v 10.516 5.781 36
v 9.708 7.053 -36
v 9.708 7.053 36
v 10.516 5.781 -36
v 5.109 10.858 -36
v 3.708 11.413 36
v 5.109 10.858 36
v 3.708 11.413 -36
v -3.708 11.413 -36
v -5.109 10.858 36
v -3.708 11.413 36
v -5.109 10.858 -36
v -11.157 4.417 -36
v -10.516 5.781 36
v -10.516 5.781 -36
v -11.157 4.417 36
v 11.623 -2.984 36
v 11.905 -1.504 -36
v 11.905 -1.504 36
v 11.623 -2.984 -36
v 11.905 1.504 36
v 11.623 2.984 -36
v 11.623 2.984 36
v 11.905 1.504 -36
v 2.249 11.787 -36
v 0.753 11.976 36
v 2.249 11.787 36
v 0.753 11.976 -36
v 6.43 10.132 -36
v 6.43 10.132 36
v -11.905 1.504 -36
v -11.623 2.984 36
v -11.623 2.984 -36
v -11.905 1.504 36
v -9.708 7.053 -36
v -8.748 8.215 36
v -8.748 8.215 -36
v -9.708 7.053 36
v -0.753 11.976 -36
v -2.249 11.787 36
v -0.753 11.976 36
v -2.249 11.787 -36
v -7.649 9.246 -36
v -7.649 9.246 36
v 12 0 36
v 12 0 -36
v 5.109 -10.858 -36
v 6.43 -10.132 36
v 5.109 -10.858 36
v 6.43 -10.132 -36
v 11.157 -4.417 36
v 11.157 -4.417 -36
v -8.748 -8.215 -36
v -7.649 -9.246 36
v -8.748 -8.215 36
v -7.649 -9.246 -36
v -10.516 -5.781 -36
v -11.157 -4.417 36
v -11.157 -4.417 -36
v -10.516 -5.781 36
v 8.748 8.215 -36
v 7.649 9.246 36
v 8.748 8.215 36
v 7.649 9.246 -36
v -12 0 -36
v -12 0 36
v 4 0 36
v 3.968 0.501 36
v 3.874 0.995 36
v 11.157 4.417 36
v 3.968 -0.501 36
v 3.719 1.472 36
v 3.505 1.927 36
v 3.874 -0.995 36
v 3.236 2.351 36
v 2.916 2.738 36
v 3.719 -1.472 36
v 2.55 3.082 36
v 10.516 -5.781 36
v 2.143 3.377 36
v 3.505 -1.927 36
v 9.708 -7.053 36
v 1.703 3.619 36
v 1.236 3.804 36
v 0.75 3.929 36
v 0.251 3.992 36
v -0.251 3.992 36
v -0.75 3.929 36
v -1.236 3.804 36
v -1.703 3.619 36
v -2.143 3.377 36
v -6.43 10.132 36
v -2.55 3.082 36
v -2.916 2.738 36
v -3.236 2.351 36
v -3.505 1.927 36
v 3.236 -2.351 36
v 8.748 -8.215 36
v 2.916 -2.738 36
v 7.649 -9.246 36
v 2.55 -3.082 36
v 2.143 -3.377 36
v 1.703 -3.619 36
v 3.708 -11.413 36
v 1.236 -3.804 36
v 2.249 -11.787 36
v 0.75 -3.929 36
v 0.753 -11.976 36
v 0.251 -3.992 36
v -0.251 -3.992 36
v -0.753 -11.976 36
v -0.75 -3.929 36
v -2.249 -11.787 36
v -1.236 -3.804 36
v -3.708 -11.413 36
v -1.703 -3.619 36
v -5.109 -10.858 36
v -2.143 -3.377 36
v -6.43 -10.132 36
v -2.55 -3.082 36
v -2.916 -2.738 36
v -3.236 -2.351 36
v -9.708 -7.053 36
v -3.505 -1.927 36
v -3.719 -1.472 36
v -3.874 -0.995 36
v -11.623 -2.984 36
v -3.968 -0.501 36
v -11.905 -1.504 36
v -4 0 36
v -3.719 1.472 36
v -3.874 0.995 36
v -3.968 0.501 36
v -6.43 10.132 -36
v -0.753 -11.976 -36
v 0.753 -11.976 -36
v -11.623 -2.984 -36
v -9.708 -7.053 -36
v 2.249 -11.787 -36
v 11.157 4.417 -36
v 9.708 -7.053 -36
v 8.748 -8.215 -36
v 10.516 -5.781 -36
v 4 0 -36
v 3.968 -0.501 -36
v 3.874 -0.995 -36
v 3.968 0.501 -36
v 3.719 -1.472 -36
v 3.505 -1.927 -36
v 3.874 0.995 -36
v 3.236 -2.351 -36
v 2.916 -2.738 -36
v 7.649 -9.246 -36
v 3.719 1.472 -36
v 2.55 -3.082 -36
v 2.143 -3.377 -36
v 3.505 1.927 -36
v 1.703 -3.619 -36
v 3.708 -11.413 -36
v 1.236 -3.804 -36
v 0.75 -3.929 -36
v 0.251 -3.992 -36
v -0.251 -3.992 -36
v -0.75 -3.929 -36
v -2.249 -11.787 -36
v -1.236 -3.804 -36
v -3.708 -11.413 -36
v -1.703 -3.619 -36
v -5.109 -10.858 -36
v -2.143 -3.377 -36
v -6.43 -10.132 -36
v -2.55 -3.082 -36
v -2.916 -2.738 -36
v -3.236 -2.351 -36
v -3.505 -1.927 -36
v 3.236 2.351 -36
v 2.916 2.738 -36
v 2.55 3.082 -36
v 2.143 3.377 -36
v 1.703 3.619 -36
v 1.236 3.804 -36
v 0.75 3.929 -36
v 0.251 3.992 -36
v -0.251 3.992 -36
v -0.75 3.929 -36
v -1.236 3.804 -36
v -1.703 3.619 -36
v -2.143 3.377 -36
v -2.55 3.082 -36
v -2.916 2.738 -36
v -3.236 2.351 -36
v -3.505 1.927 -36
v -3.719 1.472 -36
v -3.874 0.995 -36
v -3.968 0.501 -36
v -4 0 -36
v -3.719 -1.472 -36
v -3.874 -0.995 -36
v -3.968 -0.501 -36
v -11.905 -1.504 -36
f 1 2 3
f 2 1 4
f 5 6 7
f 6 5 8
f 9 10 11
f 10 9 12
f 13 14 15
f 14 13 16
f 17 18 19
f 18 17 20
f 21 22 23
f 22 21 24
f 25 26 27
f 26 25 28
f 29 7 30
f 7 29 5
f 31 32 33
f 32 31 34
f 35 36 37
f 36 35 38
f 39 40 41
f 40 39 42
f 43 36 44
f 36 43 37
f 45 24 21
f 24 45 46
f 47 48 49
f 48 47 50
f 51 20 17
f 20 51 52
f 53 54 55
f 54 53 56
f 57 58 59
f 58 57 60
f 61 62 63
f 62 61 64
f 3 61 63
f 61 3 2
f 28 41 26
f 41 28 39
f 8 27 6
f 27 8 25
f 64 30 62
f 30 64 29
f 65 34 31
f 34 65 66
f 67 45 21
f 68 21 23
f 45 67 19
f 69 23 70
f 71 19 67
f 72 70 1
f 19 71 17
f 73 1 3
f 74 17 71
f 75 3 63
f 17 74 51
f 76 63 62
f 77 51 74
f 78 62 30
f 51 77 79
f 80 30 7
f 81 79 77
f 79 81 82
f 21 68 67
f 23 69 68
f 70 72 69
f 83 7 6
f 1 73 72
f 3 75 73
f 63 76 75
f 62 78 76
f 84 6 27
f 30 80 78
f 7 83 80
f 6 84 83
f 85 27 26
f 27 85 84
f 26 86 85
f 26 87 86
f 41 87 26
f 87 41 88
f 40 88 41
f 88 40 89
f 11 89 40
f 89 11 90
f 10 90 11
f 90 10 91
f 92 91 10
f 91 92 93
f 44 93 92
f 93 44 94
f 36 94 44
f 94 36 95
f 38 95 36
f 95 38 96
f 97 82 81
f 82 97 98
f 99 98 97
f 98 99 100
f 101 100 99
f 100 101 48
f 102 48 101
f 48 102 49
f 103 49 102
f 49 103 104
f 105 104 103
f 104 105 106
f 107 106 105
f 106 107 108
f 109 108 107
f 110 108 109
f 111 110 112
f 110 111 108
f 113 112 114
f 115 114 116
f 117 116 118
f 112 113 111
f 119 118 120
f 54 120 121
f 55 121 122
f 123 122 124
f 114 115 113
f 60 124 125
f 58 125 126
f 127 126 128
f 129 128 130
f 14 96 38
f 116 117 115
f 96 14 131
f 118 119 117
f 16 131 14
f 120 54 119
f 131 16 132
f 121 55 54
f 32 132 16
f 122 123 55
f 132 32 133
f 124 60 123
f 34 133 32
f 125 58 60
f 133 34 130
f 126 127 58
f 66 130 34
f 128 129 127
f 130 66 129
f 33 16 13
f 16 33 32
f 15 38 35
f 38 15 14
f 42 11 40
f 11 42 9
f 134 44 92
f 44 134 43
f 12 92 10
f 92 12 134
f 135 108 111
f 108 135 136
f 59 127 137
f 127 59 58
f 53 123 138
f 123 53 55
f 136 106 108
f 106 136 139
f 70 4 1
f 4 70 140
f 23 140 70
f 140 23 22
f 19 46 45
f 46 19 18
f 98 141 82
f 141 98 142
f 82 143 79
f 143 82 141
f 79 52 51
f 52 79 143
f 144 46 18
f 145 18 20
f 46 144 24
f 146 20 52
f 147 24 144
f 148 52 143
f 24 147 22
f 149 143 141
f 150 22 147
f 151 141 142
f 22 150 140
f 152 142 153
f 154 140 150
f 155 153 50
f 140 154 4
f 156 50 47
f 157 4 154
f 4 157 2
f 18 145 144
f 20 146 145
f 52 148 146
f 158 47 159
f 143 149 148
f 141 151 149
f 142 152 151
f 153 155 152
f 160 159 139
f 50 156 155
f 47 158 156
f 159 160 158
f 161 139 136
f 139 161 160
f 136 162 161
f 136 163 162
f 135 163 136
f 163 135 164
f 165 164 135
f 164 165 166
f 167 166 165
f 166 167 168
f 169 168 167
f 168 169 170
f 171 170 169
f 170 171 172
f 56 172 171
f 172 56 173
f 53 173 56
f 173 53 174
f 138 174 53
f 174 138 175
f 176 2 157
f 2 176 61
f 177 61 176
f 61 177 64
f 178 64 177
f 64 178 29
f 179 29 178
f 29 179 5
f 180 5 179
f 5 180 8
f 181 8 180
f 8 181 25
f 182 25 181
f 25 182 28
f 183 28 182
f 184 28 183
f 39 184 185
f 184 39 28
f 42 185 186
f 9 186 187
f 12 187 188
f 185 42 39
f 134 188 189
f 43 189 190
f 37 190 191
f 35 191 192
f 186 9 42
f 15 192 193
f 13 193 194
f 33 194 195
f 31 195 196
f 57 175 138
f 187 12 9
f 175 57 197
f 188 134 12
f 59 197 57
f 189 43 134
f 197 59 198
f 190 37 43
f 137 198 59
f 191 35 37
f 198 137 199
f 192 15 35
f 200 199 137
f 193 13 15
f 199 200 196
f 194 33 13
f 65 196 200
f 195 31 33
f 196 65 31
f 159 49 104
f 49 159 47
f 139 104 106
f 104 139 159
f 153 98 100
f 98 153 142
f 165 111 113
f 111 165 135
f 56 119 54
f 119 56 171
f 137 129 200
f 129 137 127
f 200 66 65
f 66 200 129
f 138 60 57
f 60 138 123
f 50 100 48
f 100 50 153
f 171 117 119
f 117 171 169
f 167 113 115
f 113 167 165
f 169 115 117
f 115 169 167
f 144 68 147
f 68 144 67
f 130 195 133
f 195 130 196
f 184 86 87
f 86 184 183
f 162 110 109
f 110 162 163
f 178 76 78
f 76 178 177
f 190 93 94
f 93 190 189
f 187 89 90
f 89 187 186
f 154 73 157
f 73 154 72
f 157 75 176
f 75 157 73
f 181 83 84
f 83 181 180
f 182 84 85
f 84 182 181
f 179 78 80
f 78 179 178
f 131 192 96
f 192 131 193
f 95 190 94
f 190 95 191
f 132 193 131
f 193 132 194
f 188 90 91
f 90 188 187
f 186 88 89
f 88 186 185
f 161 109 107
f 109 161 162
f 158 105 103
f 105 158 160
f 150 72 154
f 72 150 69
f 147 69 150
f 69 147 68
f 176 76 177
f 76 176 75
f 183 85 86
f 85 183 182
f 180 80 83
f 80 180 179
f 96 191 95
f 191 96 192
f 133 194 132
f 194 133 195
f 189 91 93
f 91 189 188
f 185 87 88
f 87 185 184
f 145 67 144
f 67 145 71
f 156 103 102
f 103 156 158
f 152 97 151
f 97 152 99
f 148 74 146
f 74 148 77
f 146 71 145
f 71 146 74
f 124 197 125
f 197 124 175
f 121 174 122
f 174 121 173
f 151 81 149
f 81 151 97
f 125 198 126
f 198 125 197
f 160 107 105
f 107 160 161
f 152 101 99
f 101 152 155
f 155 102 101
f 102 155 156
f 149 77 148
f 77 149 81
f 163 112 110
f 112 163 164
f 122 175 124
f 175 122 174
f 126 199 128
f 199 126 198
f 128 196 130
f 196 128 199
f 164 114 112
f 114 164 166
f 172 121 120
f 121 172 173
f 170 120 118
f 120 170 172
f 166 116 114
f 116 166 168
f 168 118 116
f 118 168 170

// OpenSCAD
$fn = 50;


difference() {
	union() {
		translate(v = [0, 0, -36.0000000000]) {
			cylinder(h = 72, r = 12.0000000000);
		}
	}
	union() {
		translate(v = [0, 0, -100.0000000000]) {
			cylinder(h = 200, r = 4);
		}
	}
}
